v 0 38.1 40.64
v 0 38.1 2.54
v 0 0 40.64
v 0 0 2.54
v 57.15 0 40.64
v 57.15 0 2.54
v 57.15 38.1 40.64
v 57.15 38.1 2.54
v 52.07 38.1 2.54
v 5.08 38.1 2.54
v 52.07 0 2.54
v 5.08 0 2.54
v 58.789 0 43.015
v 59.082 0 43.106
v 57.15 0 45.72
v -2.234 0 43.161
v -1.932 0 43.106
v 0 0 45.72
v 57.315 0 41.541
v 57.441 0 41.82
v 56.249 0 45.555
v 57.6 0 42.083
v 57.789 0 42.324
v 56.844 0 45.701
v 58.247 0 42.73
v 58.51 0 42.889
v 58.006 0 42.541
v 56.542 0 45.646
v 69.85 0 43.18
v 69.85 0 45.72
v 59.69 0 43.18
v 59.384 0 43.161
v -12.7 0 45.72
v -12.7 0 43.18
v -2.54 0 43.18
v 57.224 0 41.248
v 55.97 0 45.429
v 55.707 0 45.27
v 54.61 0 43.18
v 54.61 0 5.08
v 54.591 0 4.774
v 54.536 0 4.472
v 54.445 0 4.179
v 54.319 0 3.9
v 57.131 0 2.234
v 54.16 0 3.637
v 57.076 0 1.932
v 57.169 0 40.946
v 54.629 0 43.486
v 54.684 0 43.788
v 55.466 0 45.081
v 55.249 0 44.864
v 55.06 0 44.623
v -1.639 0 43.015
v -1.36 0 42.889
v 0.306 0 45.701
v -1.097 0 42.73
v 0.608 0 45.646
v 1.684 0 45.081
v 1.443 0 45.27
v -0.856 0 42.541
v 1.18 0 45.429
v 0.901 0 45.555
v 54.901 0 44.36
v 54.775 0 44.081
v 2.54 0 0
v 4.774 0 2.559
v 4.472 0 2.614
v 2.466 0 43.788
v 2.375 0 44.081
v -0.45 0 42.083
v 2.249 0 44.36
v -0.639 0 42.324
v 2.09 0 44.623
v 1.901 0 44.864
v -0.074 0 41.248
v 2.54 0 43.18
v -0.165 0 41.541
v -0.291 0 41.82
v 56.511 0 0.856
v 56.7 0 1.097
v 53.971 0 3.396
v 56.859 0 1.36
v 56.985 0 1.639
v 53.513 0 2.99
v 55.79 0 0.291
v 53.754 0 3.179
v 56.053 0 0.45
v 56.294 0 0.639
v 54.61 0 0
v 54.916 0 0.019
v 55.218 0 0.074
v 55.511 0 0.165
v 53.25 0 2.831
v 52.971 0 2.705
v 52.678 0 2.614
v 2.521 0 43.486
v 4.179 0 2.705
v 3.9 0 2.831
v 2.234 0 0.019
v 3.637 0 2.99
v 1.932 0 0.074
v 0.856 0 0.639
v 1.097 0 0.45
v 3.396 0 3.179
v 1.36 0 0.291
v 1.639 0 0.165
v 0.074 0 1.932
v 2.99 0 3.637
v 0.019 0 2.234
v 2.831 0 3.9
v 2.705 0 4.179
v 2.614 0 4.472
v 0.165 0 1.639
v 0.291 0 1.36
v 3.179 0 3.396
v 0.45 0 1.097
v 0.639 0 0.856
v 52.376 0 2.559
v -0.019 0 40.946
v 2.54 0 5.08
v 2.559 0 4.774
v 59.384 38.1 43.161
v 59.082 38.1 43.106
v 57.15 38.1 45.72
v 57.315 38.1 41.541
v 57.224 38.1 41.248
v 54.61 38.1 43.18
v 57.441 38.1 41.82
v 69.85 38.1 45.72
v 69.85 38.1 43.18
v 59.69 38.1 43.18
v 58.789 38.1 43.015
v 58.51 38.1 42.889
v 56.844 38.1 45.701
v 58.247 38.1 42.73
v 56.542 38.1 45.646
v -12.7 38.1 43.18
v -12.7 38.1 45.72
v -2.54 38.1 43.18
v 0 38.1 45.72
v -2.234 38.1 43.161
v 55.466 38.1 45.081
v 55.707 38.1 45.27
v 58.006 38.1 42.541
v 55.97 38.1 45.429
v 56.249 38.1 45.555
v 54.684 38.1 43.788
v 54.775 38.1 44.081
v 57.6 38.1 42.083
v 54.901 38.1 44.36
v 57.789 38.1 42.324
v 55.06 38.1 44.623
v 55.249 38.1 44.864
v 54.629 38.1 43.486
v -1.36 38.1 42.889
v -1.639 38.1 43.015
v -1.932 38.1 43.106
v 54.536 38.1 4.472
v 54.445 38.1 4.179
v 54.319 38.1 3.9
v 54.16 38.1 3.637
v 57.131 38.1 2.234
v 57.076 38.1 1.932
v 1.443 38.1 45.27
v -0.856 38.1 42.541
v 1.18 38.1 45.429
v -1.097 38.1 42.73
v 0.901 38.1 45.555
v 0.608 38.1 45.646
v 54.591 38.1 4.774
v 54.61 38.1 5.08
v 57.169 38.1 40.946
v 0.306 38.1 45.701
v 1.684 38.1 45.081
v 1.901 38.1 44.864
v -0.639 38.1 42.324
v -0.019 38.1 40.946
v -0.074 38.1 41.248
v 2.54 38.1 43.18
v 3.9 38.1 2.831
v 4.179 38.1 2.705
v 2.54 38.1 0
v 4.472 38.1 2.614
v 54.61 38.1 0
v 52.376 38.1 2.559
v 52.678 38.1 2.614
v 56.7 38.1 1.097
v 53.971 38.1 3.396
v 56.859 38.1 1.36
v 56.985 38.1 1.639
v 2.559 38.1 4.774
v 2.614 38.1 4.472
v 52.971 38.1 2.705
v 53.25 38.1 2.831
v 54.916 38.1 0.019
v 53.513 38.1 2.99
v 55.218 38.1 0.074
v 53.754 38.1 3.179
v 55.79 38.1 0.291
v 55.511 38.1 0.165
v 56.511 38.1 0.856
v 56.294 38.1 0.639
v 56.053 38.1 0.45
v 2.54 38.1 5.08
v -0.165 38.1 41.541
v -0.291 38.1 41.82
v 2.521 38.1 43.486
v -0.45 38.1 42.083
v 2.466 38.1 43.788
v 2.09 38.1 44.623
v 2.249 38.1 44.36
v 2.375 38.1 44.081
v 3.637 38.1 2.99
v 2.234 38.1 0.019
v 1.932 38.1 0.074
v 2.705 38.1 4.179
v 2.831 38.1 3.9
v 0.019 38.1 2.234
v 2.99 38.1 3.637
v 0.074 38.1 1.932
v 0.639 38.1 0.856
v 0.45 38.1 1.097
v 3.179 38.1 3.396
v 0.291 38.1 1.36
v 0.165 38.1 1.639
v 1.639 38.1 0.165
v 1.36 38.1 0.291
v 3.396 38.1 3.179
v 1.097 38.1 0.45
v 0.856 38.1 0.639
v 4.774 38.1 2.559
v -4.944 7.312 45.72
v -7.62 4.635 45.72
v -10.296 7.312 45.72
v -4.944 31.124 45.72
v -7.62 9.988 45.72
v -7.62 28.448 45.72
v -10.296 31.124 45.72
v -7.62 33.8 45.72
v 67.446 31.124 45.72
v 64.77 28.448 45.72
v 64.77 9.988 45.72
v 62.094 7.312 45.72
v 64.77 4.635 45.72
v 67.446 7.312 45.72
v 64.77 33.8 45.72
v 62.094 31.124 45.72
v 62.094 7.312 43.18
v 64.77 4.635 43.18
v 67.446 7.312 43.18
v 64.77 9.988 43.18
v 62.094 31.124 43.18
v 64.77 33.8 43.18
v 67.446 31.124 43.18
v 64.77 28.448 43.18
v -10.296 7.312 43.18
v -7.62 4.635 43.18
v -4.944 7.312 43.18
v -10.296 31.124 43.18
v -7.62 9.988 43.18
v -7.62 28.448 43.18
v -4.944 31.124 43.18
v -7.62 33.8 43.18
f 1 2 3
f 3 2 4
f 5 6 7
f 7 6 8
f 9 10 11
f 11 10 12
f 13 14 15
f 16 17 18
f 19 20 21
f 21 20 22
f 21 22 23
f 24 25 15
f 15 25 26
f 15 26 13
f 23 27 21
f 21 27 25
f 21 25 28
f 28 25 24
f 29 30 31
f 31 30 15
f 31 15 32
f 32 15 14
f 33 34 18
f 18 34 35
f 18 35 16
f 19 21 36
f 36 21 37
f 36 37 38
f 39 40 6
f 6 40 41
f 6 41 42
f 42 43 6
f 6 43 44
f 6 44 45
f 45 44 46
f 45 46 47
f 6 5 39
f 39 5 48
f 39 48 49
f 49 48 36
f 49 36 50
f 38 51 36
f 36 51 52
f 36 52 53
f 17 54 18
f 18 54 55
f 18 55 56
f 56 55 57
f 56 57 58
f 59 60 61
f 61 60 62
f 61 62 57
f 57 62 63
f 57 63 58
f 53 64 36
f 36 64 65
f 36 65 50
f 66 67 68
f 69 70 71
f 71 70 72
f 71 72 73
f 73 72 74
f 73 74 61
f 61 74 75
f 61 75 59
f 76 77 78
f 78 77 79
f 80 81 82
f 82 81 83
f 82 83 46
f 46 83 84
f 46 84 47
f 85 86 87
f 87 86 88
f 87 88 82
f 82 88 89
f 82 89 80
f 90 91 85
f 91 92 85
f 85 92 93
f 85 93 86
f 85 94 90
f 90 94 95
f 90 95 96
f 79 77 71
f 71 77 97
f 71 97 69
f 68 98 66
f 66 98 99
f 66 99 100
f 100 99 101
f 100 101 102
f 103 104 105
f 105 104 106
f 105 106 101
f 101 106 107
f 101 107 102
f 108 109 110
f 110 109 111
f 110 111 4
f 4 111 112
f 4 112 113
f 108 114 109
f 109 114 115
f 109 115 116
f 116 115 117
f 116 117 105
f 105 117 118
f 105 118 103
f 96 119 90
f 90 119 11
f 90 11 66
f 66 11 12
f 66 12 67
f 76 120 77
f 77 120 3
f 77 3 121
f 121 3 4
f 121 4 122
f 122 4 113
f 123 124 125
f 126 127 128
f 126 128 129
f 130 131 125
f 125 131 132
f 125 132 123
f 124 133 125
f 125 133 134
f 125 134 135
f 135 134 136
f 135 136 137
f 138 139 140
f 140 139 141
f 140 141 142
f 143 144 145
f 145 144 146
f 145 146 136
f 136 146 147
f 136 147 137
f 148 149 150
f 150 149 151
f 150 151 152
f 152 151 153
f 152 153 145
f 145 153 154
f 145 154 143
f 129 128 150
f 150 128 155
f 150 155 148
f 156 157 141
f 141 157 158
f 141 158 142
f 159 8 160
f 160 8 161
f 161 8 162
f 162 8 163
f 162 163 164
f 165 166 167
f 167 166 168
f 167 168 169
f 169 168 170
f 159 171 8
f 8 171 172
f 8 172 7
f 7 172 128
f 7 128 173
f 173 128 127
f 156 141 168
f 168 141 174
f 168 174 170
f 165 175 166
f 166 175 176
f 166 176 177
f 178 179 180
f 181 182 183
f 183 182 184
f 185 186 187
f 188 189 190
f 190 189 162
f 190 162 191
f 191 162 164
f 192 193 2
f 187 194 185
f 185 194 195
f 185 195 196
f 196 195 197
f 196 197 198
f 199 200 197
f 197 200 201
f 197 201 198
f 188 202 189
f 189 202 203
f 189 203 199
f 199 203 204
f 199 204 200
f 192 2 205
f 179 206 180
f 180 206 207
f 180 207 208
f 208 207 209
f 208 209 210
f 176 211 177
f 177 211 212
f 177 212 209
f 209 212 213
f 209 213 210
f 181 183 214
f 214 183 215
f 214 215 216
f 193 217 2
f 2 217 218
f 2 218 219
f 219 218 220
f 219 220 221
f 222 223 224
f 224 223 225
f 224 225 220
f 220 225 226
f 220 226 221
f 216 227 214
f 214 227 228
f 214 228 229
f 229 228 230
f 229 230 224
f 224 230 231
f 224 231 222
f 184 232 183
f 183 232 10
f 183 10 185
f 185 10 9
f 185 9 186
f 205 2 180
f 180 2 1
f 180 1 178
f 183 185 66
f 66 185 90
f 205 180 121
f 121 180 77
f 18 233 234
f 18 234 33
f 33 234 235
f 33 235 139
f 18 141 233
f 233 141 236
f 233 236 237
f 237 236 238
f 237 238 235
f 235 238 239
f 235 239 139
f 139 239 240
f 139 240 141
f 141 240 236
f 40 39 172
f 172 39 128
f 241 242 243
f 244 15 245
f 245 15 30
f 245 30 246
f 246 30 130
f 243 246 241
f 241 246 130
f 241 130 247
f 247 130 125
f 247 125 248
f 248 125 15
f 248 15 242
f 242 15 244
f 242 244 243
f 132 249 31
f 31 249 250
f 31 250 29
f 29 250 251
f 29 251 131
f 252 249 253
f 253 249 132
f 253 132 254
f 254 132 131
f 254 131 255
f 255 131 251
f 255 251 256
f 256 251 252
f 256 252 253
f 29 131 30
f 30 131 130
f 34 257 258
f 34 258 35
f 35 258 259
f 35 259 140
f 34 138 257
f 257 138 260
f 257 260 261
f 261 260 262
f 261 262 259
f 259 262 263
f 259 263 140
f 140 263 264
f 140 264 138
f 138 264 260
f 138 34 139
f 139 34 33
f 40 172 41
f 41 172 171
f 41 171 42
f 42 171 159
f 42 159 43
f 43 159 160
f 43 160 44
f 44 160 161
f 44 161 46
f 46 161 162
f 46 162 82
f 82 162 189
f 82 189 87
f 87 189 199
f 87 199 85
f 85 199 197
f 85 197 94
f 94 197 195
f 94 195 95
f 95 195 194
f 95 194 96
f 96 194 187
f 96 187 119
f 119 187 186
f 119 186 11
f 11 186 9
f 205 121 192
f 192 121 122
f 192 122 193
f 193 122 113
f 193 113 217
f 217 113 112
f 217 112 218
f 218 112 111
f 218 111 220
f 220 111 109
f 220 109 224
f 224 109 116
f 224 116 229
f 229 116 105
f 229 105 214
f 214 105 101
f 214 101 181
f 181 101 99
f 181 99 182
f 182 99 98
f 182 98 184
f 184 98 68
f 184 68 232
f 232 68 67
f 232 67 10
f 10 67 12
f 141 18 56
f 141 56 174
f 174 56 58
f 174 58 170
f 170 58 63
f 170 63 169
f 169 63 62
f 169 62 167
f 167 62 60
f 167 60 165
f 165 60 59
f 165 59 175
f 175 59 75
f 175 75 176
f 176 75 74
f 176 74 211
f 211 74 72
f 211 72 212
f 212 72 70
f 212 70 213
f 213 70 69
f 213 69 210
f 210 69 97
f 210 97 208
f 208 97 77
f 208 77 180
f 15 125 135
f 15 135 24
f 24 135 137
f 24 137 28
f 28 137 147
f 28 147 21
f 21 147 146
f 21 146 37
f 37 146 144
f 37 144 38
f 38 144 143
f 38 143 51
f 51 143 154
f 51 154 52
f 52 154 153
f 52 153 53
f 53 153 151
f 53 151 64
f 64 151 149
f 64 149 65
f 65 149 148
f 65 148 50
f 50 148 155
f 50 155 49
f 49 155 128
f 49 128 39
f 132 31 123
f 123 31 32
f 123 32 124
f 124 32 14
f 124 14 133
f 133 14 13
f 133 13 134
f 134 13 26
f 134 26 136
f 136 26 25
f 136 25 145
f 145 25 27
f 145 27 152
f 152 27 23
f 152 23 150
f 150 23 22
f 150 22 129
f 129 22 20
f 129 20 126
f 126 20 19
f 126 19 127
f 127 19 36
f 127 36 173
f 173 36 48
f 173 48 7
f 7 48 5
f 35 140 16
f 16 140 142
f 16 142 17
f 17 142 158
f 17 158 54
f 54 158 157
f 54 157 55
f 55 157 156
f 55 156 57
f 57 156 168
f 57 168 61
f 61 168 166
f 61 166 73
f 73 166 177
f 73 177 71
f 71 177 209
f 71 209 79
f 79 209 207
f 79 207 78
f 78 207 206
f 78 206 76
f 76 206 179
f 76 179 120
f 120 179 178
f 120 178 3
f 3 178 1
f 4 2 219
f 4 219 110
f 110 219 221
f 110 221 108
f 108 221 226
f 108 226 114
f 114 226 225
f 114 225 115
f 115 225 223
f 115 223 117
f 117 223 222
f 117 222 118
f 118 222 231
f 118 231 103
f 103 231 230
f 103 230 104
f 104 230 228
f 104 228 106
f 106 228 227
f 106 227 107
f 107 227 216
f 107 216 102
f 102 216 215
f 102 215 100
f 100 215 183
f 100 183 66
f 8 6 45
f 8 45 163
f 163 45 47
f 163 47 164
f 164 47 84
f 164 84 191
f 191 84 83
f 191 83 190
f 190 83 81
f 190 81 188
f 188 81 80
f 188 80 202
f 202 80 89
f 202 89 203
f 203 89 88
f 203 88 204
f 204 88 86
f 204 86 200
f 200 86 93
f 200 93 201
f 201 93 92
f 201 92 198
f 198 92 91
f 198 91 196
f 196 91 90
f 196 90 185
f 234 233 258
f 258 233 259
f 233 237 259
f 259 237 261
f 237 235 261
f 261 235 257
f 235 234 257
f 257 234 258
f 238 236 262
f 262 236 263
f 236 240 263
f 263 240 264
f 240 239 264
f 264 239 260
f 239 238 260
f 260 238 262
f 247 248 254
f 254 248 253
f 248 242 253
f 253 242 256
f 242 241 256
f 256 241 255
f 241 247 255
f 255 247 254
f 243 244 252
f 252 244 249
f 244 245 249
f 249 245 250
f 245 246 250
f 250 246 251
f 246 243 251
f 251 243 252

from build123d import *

# Parameters (mm, degrees)
SKETCH1_W           = 57.15
SKETCH1_H           = 38.1
BOSS_EXTRUDE1_DEPTH = 2.54
SKETCH2_W           = 2.54
SKETCH2_H           = 38.1
BOSS_EXTRUDE2_DEPTH = 43.18
SKETCH3_W           = 2.54
SKETCH3_H           = 38.1
BOSS_EXTRUDE3_DEPTH = 12.7
SKETCH4_W           = 2.54
SKETCH4_H           = 38.1
BOSS_EXTRUDE4_DEPTH = 12.7
FILLET1_R           = 2.54
CUT_EXTRUDE1_DEPTH  = 91.527039607


with BuildPart() as part:
    # Sketch1 → Boss-Extrude1 (new body)
    with BuildSketch(Plane.XY):
        with Locations((28.575, 19.05)):
            Rectangle(SKETCH1_W, SKETCH1_H)
    extrude(amount=BOSS_EXTRUDE1_DEPTH)

    # Sketch2 → Boss-Extrude2 (add)
    with BuildSketch(Plane.XY.offset(2.54)):
        with Locations((1.27, 19.05)):
            Rectangle(SKETCH2_W, SKETCH2_H)
        with Locations((55.88, 19.05)):
            Rectangle(SKETCH2_W, SKETCH2_H)
    extrude(amount=BOSS_EXTRUDE2_DEPTH)

    # Sketch3 → Boss-Extrude3 (add)
    with BuildSketch(Plane(origin=(57.15, 0, 0), x_dir=(0, 0, -1), z_dir=(1, 0, 0))):
        with Locations((-44.45, 19.05)):
            Rectangle(SKETCH3_W, SKETCH3_H)
    extrude(amount=BOSS_EXTRUDE3_DEPTH)

    # Sketch4 → Boss-Extrude4 (add)
    with BuildSketch(Plane.ZY):
        with Locations((44.45, 19.05)):
            Rectangle(SKETCH4_W, SKETCH4_H)
    extrude(amount=BOSS_EXTRUDE4_DEPTH)

    # Fillet1
    fillet1_edges = [part.edges().sort_by_distance(p)[0] for p in [
        (2.54, 19.05, 2.54),
        (2.54, 19.05, 45.72),
        (54.61, 19.05, 2.54),
        (54.61, 19.05, 45.72),
        (57.15, 19.05, 43.18),
        (57.15, 19.05, 0),
        (0, 19.05, 43.18),
        (0, 19.05, 0),
    ]]
    fillet(fillet1_edges, radius=FILLET1_R)

    # Sketch5 → Cut-Extrude1 (cut, through all)
    with BuildSketch(Plane(origin=(0, 0, 43.18), x_dir=(-1, 0, 0), z_dir=(0, 0, -1))):
        Polygon((-64.77, 33.800232648), (-67.446116324, 31.124116324), (-64.77, 28.448), (-62.093883676, 31.124116324), align=None)
        Polygon((-64.77, 9.987732648), (-67.446116324, 7.311616324), (-64.77, 4.6355), (-62.093883676, 7.311616324), align=None)
        Polygon((4.943883676, 7.311616324), (7.62, 9.987732648), (10.296116324, 7.311616324), (7.62, 4.6355), align=None)
        Polygon((4.943883676, 31.124116324), (7.62, 33.800232648), (10.296116324, 31.124116324), (7.62, 28.448), align=None)
    extrude(amount=-CUT_EXTRUDE1_DEPTH, mode=Mode.SUBTRACT)


solid = part.part
